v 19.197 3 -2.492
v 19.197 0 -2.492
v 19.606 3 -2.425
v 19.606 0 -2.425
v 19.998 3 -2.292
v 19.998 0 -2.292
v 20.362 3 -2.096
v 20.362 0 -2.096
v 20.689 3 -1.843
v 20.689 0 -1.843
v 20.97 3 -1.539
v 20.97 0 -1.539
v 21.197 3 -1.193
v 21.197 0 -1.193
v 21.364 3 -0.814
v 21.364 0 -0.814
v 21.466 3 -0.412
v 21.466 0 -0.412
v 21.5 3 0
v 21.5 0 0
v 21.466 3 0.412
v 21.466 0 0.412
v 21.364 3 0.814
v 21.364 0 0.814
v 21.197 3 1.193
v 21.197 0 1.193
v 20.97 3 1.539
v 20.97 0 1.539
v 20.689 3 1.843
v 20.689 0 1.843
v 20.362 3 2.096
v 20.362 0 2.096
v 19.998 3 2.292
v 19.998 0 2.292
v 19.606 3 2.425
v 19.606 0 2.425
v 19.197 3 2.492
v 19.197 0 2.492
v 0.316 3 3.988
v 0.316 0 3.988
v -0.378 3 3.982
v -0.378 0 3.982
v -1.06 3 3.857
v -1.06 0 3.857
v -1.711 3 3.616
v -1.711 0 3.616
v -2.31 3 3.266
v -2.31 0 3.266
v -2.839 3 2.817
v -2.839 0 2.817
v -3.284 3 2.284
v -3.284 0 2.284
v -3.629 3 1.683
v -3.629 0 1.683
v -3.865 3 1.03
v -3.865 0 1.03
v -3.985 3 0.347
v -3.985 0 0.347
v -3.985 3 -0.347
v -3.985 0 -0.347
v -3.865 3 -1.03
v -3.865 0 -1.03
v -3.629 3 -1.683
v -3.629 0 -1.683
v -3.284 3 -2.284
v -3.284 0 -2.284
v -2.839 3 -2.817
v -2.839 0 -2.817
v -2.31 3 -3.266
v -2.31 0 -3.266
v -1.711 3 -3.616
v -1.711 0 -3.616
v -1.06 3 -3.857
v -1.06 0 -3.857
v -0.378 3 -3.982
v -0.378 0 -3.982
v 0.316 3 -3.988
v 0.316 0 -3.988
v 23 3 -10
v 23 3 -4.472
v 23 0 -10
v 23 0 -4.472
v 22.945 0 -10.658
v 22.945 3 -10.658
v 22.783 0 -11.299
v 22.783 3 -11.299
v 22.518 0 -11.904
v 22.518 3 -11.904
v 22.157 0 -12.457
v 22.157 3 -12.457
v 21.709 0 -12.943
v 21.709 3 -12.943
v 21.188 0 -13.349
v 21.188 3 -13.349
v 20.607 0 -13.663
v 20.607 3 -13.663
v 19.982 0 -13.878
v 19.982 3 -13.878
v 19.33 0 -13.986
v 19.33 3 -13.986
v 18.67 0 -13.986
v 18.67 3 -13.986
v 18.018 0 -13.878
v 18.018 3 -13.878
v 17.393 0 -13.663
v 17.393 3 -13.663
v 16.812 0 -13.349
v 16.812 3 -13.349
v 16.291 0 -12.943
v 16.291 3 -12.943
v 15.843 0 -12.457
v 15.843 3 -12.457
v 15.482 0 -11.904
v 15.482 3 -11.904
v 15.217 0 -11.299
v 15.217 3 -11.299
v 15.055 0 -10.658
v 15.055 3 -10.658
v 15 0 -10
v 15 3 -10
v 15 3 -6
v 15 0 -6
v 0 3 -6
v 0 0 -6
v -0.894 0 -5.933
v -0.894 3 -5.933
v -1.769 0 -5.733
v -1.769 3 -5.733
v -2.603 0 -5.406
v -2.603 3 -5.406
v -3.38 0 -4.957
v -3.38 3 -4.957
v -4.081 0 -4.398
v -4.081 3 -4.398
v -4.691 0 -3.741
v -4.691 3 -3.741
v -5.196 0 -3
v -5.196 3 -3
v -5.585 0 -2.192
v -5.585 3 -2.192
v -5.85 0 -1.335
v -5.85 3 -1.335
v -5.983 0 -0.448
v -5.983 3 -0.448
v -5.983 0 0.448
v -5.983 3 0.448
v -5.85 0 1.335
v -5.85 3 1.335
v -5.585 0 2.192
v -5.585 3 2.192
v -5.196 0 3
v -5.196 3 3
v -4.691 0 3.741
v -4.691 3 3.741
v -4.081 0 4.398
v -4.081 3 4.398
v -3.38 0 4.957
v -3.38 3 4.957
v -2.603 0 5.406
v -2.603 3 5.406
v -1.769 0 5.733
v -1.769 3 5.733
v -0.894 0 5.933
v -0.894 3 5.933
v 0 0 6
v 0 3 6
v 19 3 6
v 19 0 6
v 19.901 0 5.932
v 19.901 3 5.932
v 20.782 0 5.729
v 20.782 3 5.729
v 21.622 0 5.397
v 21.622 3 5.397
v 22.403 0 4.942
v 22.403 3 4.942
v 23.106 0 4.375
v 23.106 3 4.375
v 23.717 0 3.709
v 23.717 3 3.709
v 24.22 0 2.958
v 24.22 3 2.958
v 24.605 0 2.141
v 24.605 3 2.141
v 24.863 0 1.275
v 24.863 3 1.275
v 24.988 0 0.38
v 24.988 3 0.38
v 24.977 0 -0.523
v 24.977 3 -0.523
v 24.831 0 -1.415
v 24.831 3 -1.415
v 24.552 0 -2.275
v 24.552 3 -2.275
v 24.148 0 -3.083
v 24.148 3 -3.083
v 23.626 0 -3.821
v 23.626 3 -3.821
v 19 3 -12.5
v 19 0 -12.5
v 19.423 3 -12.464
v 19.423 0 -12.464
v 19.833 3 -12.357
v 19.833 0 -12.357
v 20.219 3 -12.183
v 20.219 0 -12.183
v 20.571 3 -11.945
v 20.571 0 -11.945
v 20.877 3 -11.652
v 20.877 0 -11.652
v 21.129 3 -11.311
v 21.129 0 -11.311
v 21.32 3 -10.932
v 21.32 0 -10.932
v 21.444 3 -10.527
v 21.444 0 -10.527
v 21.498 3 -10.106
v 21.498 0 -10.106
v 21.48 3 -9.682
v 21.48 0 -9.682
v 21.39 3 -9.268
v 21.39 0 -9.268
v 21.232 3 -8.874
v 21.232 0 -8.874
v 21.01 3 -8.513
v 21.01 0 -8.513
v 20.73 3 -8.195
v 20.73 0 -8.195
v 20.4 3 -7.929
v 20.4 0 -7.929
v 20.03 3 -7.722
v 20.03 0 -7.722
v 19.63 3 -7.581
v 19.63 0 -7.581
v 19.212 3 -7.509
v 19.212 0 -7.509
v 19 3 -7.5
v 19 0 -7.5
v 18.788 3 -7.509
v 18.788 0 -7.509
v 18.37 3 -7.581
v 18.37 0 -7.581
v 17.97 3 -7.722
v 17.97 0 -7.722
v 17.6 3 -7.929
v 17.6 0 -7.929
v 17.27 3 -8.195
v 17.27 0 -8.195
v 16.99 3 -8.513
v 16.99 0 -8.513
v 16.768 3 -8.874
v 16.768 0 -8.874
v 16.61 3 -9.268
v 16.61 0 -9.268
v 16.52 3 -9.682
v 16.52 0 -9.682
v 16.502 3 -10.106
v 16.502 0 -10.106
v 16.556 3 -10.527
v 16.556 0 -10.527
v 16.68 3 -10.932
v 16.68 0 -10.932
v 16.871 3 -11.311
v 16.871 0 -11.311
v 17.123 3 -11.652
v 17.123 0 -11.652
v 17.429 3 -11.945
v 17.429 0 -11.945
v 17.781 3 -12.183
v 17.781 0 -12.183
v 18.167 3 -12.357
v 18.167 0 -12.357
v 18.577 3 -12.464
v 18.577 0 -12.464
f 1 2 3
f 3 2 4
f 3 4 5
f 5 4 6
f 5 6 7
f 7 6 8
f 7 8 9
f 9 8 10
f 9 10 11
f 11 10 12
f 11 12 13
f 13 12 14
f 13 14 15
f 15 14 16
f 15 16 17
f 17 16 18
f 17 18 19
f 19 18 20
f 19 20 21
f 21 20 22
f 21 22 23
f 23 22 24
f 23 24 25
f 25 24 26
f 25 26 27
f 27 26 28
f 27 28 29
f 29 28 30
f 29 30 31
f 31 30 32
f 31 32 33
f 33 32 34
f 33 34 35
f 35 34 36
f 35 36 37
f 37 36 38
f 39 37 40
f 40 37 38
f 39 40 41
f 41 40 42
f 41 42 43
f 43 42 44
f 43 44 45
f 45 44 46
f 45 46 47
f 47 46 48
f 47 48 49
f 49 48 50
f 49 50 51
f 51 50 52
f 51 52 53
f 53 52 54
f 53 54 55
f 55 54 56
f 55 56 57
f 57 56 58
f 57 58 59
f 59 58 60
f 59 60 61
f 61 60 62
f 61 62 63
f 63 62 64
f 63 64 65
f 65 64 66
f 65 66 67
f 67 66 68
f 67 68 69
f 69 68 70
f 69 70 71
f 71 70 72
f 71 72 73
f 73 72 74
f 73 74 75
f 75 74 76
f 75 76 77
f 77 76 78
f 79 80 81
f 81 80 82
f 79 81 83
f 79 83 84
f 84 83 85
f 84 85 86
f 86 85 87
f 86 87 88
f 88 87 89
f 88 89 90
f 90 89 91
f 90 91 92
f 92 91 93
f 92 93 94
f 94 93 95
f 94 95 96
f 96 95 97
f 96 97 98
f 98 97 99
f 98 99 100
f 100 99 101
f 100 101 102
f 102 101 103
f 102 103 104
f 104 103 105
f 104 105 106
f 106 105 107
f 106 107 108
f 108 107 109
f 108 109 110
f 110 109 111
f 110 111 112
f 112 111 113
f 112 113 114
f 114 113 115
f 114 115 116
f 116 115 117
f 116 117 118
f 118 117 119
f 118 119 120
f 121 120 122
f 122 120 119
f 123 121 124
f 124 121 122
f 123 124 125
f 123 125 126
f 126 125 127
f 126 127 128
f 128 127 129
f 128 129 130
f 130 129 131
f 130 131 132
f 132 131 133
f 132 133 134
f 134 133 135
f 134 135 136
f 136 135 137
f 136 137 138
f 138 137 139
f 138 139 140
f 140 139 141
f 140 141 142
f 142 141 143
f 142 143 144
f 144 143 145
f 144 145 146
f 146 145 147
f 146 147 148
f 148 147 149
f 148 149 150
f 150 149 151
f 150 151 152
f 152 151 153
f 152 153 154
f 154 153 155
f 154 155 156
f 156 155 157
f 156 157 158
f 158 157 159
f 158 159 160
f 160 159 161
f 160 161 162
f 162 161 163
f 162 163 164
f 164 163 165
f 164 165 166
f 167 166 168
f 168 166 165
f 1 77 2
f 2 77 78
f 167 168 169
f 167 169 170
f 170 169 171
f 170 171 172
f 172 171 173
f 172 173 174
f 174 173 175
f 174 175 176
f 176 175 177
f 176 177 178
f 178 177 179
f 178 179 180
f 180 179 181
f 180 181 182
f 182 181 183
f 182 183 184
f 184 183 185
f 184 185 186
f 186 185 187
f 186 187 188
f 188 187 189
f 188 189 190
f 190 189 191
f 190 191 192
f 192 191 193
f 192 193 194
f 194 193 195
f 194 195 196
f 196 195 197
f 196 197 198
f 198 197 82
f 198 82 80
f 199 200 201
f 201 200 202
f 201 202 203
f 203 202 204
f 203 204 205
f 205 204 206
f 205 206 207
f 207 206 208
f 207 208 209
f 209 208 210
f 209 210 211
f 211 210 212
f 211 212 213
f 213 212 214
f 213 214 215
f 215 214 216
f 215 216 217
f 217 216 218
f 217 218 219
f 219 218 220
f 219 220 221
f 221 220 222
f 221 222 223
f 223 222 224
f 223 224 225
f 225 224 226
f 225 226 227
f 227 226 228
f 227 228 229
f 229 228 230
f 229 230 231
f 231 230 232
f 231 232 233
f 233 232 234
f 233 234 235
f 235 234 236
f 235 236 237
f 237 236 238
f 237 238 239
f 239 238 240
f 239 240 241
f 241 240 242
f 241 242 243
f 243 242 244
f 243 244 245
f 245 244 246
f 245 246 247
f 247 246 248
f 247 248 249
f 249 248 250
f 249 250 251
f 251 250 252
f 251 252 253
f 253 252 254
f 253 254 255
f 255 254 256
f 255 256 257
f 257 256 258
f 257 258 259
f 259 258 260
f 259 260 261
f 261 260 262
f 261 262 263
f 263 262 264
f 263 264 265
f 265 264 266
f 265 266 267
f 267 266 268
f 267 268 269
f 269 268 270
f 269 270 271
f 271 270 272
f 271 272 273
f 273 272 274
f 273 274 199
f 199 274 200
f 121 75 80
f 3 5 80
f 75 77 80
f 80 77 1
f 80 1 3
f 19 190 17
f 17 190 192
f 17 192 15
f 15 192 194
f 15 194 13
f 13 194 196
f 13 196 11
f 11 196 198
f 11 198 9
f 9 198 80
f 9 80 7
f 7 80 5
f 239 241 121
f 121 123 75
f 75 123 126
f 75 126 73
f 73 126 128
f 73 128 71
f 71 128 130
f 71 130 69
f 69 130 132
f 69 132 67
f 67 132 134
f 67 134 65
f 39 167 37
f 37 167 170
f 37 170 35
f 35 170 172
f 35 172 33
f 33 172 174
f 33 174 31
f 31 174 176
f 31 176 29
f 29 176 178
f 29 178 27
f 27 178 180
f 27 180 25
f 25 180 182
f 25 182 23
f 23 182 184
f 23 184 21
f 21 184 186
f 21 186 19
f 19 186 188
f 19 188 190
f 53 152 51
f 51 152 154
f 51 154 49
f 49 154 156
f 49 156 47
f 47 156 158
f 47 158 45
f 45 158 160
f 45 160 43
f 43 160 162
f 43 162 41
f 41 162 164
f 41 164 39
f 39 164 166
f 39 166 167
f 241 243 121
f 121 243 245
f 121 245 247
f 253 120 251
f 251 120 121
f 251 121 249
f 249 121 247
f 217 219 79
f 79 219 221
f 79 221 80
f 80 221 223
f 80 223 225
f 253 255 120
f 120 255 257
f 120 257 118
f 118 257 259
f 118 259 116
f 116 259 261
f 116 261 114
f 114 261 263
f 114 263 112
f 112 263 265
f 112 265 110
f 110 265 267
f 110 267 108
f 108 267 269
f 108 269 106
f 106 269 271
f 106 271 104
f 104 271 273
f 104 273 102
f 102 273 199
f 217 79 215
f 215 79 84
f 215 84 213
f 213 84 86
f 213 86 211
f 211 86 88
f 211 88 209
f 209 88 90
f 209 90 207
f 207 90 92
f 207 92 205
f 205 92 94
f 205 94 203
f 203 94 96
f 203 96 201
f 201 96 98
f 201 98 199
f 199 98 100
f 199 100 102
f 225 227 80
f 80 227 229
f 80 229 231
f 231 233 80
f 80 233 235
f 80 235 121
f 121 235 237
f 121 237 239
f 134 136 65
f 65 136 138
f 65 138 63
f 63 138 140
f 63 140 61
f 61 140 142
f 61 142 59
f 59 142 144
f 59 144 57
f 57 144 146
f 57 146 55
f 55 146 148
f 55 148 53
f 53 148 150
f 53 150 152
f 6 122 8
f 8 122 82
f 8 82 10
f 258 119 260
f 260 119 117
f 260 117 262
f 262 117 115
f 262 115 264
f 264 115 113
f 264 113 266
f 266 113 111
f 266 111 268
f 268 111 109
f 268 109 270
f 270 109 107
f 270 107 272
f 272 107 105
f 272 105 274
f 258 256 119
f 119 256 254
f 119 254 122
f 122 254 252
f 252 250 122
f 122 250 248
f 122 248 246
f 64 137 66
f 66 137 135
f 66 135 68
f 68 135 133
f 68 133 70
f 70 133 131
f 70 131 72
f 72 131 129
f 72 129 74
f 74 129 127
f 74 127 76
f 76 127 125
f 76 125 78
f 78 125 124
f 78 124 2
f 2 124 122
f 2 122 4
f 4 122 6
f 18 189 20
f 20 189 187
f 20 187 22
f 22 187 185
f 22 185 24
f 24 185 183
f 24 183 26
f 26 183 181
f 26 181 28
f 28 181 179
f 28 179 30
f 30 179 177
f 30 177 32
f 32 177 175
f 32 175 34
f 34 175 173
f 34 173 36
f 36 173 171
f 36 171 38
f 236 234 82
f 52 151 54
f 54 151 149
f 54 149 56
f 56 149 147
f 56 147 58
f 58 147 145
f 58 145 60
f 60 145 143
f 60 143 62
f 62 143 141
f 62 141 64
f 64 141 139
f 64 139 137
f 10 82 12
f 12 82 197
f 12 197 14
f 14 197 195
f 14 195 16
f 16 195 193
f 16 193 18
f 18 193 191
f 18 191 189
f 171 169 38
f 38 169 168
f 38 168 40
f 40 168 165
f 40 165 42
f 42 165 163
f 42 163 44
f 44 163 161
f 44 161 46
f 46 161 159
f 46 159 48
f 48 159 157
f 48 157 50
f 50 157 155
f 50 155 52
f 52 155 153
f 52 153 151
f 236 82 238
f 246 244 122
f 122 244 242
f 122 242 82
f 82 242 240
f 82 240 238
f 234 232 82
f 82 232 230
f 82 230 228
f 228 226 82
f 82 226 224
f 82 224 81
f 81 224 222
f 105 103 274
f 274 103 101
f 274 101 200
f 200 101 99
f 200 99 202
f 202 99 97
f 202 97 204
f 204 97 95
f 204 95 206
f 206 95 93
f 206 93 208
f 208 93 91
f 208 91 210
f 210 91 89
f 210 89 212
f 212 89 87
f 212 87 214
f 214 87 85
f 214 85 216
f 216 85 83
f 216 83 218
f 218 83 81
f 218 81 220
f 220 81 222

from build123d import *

# Parameters (mm, degrees)
SKETCH_1_R      = 2.5
EXTRUDE_1_DEPTH = 3


with BuildPart() as part:
    # 草图1 → 凸台-拉伸1 (new body)
    with BuildSketch(Plane(origin=(0, 0, 0), x_dir=(1, 0, 0), z_dir=(0, 1, 0))):
        with BuildLine():
            ThreePointArc((19, -6), (24.605034154, -2.140932539), (23, 4.472135955))
            Line((23, 4.472135955), (23, 10))
            ThreePointArc((23, 10), (19, 14), (15, 10))
            Line((15, 10), (15, 6))
            Line((15, 6), (0, 6))
            ThreePointArc((0, 6), (-6, 0), (0, -6))
            Line((0, -6), (19, -6))
        make_face()
        with BuildLine():
            ThreePointArc((0.315789474, -3.987515142), (-4, 0), (0.315789474, 3.987515142))
            Line((0.315789474, 3.987515142), (19.197368421, 2.492196964))
            ThreePointArc((19.197368421, 2.492196964), (21.5, 0), (19.197368421, -2.492196964))
            Line((19.197368421, -2.492196964), (0.315789474, -3.987515142))
        make_face(mode=Mode.SUBTRACT)
        with Locations(Location((19, 10, 0), (0, 0, 270))):
            Circle(SKETCH_1_R, mode=Mode.SUBTRACT)
    extrude(amount=EXTRUDE_1_DEPTH)


solid = part.part
